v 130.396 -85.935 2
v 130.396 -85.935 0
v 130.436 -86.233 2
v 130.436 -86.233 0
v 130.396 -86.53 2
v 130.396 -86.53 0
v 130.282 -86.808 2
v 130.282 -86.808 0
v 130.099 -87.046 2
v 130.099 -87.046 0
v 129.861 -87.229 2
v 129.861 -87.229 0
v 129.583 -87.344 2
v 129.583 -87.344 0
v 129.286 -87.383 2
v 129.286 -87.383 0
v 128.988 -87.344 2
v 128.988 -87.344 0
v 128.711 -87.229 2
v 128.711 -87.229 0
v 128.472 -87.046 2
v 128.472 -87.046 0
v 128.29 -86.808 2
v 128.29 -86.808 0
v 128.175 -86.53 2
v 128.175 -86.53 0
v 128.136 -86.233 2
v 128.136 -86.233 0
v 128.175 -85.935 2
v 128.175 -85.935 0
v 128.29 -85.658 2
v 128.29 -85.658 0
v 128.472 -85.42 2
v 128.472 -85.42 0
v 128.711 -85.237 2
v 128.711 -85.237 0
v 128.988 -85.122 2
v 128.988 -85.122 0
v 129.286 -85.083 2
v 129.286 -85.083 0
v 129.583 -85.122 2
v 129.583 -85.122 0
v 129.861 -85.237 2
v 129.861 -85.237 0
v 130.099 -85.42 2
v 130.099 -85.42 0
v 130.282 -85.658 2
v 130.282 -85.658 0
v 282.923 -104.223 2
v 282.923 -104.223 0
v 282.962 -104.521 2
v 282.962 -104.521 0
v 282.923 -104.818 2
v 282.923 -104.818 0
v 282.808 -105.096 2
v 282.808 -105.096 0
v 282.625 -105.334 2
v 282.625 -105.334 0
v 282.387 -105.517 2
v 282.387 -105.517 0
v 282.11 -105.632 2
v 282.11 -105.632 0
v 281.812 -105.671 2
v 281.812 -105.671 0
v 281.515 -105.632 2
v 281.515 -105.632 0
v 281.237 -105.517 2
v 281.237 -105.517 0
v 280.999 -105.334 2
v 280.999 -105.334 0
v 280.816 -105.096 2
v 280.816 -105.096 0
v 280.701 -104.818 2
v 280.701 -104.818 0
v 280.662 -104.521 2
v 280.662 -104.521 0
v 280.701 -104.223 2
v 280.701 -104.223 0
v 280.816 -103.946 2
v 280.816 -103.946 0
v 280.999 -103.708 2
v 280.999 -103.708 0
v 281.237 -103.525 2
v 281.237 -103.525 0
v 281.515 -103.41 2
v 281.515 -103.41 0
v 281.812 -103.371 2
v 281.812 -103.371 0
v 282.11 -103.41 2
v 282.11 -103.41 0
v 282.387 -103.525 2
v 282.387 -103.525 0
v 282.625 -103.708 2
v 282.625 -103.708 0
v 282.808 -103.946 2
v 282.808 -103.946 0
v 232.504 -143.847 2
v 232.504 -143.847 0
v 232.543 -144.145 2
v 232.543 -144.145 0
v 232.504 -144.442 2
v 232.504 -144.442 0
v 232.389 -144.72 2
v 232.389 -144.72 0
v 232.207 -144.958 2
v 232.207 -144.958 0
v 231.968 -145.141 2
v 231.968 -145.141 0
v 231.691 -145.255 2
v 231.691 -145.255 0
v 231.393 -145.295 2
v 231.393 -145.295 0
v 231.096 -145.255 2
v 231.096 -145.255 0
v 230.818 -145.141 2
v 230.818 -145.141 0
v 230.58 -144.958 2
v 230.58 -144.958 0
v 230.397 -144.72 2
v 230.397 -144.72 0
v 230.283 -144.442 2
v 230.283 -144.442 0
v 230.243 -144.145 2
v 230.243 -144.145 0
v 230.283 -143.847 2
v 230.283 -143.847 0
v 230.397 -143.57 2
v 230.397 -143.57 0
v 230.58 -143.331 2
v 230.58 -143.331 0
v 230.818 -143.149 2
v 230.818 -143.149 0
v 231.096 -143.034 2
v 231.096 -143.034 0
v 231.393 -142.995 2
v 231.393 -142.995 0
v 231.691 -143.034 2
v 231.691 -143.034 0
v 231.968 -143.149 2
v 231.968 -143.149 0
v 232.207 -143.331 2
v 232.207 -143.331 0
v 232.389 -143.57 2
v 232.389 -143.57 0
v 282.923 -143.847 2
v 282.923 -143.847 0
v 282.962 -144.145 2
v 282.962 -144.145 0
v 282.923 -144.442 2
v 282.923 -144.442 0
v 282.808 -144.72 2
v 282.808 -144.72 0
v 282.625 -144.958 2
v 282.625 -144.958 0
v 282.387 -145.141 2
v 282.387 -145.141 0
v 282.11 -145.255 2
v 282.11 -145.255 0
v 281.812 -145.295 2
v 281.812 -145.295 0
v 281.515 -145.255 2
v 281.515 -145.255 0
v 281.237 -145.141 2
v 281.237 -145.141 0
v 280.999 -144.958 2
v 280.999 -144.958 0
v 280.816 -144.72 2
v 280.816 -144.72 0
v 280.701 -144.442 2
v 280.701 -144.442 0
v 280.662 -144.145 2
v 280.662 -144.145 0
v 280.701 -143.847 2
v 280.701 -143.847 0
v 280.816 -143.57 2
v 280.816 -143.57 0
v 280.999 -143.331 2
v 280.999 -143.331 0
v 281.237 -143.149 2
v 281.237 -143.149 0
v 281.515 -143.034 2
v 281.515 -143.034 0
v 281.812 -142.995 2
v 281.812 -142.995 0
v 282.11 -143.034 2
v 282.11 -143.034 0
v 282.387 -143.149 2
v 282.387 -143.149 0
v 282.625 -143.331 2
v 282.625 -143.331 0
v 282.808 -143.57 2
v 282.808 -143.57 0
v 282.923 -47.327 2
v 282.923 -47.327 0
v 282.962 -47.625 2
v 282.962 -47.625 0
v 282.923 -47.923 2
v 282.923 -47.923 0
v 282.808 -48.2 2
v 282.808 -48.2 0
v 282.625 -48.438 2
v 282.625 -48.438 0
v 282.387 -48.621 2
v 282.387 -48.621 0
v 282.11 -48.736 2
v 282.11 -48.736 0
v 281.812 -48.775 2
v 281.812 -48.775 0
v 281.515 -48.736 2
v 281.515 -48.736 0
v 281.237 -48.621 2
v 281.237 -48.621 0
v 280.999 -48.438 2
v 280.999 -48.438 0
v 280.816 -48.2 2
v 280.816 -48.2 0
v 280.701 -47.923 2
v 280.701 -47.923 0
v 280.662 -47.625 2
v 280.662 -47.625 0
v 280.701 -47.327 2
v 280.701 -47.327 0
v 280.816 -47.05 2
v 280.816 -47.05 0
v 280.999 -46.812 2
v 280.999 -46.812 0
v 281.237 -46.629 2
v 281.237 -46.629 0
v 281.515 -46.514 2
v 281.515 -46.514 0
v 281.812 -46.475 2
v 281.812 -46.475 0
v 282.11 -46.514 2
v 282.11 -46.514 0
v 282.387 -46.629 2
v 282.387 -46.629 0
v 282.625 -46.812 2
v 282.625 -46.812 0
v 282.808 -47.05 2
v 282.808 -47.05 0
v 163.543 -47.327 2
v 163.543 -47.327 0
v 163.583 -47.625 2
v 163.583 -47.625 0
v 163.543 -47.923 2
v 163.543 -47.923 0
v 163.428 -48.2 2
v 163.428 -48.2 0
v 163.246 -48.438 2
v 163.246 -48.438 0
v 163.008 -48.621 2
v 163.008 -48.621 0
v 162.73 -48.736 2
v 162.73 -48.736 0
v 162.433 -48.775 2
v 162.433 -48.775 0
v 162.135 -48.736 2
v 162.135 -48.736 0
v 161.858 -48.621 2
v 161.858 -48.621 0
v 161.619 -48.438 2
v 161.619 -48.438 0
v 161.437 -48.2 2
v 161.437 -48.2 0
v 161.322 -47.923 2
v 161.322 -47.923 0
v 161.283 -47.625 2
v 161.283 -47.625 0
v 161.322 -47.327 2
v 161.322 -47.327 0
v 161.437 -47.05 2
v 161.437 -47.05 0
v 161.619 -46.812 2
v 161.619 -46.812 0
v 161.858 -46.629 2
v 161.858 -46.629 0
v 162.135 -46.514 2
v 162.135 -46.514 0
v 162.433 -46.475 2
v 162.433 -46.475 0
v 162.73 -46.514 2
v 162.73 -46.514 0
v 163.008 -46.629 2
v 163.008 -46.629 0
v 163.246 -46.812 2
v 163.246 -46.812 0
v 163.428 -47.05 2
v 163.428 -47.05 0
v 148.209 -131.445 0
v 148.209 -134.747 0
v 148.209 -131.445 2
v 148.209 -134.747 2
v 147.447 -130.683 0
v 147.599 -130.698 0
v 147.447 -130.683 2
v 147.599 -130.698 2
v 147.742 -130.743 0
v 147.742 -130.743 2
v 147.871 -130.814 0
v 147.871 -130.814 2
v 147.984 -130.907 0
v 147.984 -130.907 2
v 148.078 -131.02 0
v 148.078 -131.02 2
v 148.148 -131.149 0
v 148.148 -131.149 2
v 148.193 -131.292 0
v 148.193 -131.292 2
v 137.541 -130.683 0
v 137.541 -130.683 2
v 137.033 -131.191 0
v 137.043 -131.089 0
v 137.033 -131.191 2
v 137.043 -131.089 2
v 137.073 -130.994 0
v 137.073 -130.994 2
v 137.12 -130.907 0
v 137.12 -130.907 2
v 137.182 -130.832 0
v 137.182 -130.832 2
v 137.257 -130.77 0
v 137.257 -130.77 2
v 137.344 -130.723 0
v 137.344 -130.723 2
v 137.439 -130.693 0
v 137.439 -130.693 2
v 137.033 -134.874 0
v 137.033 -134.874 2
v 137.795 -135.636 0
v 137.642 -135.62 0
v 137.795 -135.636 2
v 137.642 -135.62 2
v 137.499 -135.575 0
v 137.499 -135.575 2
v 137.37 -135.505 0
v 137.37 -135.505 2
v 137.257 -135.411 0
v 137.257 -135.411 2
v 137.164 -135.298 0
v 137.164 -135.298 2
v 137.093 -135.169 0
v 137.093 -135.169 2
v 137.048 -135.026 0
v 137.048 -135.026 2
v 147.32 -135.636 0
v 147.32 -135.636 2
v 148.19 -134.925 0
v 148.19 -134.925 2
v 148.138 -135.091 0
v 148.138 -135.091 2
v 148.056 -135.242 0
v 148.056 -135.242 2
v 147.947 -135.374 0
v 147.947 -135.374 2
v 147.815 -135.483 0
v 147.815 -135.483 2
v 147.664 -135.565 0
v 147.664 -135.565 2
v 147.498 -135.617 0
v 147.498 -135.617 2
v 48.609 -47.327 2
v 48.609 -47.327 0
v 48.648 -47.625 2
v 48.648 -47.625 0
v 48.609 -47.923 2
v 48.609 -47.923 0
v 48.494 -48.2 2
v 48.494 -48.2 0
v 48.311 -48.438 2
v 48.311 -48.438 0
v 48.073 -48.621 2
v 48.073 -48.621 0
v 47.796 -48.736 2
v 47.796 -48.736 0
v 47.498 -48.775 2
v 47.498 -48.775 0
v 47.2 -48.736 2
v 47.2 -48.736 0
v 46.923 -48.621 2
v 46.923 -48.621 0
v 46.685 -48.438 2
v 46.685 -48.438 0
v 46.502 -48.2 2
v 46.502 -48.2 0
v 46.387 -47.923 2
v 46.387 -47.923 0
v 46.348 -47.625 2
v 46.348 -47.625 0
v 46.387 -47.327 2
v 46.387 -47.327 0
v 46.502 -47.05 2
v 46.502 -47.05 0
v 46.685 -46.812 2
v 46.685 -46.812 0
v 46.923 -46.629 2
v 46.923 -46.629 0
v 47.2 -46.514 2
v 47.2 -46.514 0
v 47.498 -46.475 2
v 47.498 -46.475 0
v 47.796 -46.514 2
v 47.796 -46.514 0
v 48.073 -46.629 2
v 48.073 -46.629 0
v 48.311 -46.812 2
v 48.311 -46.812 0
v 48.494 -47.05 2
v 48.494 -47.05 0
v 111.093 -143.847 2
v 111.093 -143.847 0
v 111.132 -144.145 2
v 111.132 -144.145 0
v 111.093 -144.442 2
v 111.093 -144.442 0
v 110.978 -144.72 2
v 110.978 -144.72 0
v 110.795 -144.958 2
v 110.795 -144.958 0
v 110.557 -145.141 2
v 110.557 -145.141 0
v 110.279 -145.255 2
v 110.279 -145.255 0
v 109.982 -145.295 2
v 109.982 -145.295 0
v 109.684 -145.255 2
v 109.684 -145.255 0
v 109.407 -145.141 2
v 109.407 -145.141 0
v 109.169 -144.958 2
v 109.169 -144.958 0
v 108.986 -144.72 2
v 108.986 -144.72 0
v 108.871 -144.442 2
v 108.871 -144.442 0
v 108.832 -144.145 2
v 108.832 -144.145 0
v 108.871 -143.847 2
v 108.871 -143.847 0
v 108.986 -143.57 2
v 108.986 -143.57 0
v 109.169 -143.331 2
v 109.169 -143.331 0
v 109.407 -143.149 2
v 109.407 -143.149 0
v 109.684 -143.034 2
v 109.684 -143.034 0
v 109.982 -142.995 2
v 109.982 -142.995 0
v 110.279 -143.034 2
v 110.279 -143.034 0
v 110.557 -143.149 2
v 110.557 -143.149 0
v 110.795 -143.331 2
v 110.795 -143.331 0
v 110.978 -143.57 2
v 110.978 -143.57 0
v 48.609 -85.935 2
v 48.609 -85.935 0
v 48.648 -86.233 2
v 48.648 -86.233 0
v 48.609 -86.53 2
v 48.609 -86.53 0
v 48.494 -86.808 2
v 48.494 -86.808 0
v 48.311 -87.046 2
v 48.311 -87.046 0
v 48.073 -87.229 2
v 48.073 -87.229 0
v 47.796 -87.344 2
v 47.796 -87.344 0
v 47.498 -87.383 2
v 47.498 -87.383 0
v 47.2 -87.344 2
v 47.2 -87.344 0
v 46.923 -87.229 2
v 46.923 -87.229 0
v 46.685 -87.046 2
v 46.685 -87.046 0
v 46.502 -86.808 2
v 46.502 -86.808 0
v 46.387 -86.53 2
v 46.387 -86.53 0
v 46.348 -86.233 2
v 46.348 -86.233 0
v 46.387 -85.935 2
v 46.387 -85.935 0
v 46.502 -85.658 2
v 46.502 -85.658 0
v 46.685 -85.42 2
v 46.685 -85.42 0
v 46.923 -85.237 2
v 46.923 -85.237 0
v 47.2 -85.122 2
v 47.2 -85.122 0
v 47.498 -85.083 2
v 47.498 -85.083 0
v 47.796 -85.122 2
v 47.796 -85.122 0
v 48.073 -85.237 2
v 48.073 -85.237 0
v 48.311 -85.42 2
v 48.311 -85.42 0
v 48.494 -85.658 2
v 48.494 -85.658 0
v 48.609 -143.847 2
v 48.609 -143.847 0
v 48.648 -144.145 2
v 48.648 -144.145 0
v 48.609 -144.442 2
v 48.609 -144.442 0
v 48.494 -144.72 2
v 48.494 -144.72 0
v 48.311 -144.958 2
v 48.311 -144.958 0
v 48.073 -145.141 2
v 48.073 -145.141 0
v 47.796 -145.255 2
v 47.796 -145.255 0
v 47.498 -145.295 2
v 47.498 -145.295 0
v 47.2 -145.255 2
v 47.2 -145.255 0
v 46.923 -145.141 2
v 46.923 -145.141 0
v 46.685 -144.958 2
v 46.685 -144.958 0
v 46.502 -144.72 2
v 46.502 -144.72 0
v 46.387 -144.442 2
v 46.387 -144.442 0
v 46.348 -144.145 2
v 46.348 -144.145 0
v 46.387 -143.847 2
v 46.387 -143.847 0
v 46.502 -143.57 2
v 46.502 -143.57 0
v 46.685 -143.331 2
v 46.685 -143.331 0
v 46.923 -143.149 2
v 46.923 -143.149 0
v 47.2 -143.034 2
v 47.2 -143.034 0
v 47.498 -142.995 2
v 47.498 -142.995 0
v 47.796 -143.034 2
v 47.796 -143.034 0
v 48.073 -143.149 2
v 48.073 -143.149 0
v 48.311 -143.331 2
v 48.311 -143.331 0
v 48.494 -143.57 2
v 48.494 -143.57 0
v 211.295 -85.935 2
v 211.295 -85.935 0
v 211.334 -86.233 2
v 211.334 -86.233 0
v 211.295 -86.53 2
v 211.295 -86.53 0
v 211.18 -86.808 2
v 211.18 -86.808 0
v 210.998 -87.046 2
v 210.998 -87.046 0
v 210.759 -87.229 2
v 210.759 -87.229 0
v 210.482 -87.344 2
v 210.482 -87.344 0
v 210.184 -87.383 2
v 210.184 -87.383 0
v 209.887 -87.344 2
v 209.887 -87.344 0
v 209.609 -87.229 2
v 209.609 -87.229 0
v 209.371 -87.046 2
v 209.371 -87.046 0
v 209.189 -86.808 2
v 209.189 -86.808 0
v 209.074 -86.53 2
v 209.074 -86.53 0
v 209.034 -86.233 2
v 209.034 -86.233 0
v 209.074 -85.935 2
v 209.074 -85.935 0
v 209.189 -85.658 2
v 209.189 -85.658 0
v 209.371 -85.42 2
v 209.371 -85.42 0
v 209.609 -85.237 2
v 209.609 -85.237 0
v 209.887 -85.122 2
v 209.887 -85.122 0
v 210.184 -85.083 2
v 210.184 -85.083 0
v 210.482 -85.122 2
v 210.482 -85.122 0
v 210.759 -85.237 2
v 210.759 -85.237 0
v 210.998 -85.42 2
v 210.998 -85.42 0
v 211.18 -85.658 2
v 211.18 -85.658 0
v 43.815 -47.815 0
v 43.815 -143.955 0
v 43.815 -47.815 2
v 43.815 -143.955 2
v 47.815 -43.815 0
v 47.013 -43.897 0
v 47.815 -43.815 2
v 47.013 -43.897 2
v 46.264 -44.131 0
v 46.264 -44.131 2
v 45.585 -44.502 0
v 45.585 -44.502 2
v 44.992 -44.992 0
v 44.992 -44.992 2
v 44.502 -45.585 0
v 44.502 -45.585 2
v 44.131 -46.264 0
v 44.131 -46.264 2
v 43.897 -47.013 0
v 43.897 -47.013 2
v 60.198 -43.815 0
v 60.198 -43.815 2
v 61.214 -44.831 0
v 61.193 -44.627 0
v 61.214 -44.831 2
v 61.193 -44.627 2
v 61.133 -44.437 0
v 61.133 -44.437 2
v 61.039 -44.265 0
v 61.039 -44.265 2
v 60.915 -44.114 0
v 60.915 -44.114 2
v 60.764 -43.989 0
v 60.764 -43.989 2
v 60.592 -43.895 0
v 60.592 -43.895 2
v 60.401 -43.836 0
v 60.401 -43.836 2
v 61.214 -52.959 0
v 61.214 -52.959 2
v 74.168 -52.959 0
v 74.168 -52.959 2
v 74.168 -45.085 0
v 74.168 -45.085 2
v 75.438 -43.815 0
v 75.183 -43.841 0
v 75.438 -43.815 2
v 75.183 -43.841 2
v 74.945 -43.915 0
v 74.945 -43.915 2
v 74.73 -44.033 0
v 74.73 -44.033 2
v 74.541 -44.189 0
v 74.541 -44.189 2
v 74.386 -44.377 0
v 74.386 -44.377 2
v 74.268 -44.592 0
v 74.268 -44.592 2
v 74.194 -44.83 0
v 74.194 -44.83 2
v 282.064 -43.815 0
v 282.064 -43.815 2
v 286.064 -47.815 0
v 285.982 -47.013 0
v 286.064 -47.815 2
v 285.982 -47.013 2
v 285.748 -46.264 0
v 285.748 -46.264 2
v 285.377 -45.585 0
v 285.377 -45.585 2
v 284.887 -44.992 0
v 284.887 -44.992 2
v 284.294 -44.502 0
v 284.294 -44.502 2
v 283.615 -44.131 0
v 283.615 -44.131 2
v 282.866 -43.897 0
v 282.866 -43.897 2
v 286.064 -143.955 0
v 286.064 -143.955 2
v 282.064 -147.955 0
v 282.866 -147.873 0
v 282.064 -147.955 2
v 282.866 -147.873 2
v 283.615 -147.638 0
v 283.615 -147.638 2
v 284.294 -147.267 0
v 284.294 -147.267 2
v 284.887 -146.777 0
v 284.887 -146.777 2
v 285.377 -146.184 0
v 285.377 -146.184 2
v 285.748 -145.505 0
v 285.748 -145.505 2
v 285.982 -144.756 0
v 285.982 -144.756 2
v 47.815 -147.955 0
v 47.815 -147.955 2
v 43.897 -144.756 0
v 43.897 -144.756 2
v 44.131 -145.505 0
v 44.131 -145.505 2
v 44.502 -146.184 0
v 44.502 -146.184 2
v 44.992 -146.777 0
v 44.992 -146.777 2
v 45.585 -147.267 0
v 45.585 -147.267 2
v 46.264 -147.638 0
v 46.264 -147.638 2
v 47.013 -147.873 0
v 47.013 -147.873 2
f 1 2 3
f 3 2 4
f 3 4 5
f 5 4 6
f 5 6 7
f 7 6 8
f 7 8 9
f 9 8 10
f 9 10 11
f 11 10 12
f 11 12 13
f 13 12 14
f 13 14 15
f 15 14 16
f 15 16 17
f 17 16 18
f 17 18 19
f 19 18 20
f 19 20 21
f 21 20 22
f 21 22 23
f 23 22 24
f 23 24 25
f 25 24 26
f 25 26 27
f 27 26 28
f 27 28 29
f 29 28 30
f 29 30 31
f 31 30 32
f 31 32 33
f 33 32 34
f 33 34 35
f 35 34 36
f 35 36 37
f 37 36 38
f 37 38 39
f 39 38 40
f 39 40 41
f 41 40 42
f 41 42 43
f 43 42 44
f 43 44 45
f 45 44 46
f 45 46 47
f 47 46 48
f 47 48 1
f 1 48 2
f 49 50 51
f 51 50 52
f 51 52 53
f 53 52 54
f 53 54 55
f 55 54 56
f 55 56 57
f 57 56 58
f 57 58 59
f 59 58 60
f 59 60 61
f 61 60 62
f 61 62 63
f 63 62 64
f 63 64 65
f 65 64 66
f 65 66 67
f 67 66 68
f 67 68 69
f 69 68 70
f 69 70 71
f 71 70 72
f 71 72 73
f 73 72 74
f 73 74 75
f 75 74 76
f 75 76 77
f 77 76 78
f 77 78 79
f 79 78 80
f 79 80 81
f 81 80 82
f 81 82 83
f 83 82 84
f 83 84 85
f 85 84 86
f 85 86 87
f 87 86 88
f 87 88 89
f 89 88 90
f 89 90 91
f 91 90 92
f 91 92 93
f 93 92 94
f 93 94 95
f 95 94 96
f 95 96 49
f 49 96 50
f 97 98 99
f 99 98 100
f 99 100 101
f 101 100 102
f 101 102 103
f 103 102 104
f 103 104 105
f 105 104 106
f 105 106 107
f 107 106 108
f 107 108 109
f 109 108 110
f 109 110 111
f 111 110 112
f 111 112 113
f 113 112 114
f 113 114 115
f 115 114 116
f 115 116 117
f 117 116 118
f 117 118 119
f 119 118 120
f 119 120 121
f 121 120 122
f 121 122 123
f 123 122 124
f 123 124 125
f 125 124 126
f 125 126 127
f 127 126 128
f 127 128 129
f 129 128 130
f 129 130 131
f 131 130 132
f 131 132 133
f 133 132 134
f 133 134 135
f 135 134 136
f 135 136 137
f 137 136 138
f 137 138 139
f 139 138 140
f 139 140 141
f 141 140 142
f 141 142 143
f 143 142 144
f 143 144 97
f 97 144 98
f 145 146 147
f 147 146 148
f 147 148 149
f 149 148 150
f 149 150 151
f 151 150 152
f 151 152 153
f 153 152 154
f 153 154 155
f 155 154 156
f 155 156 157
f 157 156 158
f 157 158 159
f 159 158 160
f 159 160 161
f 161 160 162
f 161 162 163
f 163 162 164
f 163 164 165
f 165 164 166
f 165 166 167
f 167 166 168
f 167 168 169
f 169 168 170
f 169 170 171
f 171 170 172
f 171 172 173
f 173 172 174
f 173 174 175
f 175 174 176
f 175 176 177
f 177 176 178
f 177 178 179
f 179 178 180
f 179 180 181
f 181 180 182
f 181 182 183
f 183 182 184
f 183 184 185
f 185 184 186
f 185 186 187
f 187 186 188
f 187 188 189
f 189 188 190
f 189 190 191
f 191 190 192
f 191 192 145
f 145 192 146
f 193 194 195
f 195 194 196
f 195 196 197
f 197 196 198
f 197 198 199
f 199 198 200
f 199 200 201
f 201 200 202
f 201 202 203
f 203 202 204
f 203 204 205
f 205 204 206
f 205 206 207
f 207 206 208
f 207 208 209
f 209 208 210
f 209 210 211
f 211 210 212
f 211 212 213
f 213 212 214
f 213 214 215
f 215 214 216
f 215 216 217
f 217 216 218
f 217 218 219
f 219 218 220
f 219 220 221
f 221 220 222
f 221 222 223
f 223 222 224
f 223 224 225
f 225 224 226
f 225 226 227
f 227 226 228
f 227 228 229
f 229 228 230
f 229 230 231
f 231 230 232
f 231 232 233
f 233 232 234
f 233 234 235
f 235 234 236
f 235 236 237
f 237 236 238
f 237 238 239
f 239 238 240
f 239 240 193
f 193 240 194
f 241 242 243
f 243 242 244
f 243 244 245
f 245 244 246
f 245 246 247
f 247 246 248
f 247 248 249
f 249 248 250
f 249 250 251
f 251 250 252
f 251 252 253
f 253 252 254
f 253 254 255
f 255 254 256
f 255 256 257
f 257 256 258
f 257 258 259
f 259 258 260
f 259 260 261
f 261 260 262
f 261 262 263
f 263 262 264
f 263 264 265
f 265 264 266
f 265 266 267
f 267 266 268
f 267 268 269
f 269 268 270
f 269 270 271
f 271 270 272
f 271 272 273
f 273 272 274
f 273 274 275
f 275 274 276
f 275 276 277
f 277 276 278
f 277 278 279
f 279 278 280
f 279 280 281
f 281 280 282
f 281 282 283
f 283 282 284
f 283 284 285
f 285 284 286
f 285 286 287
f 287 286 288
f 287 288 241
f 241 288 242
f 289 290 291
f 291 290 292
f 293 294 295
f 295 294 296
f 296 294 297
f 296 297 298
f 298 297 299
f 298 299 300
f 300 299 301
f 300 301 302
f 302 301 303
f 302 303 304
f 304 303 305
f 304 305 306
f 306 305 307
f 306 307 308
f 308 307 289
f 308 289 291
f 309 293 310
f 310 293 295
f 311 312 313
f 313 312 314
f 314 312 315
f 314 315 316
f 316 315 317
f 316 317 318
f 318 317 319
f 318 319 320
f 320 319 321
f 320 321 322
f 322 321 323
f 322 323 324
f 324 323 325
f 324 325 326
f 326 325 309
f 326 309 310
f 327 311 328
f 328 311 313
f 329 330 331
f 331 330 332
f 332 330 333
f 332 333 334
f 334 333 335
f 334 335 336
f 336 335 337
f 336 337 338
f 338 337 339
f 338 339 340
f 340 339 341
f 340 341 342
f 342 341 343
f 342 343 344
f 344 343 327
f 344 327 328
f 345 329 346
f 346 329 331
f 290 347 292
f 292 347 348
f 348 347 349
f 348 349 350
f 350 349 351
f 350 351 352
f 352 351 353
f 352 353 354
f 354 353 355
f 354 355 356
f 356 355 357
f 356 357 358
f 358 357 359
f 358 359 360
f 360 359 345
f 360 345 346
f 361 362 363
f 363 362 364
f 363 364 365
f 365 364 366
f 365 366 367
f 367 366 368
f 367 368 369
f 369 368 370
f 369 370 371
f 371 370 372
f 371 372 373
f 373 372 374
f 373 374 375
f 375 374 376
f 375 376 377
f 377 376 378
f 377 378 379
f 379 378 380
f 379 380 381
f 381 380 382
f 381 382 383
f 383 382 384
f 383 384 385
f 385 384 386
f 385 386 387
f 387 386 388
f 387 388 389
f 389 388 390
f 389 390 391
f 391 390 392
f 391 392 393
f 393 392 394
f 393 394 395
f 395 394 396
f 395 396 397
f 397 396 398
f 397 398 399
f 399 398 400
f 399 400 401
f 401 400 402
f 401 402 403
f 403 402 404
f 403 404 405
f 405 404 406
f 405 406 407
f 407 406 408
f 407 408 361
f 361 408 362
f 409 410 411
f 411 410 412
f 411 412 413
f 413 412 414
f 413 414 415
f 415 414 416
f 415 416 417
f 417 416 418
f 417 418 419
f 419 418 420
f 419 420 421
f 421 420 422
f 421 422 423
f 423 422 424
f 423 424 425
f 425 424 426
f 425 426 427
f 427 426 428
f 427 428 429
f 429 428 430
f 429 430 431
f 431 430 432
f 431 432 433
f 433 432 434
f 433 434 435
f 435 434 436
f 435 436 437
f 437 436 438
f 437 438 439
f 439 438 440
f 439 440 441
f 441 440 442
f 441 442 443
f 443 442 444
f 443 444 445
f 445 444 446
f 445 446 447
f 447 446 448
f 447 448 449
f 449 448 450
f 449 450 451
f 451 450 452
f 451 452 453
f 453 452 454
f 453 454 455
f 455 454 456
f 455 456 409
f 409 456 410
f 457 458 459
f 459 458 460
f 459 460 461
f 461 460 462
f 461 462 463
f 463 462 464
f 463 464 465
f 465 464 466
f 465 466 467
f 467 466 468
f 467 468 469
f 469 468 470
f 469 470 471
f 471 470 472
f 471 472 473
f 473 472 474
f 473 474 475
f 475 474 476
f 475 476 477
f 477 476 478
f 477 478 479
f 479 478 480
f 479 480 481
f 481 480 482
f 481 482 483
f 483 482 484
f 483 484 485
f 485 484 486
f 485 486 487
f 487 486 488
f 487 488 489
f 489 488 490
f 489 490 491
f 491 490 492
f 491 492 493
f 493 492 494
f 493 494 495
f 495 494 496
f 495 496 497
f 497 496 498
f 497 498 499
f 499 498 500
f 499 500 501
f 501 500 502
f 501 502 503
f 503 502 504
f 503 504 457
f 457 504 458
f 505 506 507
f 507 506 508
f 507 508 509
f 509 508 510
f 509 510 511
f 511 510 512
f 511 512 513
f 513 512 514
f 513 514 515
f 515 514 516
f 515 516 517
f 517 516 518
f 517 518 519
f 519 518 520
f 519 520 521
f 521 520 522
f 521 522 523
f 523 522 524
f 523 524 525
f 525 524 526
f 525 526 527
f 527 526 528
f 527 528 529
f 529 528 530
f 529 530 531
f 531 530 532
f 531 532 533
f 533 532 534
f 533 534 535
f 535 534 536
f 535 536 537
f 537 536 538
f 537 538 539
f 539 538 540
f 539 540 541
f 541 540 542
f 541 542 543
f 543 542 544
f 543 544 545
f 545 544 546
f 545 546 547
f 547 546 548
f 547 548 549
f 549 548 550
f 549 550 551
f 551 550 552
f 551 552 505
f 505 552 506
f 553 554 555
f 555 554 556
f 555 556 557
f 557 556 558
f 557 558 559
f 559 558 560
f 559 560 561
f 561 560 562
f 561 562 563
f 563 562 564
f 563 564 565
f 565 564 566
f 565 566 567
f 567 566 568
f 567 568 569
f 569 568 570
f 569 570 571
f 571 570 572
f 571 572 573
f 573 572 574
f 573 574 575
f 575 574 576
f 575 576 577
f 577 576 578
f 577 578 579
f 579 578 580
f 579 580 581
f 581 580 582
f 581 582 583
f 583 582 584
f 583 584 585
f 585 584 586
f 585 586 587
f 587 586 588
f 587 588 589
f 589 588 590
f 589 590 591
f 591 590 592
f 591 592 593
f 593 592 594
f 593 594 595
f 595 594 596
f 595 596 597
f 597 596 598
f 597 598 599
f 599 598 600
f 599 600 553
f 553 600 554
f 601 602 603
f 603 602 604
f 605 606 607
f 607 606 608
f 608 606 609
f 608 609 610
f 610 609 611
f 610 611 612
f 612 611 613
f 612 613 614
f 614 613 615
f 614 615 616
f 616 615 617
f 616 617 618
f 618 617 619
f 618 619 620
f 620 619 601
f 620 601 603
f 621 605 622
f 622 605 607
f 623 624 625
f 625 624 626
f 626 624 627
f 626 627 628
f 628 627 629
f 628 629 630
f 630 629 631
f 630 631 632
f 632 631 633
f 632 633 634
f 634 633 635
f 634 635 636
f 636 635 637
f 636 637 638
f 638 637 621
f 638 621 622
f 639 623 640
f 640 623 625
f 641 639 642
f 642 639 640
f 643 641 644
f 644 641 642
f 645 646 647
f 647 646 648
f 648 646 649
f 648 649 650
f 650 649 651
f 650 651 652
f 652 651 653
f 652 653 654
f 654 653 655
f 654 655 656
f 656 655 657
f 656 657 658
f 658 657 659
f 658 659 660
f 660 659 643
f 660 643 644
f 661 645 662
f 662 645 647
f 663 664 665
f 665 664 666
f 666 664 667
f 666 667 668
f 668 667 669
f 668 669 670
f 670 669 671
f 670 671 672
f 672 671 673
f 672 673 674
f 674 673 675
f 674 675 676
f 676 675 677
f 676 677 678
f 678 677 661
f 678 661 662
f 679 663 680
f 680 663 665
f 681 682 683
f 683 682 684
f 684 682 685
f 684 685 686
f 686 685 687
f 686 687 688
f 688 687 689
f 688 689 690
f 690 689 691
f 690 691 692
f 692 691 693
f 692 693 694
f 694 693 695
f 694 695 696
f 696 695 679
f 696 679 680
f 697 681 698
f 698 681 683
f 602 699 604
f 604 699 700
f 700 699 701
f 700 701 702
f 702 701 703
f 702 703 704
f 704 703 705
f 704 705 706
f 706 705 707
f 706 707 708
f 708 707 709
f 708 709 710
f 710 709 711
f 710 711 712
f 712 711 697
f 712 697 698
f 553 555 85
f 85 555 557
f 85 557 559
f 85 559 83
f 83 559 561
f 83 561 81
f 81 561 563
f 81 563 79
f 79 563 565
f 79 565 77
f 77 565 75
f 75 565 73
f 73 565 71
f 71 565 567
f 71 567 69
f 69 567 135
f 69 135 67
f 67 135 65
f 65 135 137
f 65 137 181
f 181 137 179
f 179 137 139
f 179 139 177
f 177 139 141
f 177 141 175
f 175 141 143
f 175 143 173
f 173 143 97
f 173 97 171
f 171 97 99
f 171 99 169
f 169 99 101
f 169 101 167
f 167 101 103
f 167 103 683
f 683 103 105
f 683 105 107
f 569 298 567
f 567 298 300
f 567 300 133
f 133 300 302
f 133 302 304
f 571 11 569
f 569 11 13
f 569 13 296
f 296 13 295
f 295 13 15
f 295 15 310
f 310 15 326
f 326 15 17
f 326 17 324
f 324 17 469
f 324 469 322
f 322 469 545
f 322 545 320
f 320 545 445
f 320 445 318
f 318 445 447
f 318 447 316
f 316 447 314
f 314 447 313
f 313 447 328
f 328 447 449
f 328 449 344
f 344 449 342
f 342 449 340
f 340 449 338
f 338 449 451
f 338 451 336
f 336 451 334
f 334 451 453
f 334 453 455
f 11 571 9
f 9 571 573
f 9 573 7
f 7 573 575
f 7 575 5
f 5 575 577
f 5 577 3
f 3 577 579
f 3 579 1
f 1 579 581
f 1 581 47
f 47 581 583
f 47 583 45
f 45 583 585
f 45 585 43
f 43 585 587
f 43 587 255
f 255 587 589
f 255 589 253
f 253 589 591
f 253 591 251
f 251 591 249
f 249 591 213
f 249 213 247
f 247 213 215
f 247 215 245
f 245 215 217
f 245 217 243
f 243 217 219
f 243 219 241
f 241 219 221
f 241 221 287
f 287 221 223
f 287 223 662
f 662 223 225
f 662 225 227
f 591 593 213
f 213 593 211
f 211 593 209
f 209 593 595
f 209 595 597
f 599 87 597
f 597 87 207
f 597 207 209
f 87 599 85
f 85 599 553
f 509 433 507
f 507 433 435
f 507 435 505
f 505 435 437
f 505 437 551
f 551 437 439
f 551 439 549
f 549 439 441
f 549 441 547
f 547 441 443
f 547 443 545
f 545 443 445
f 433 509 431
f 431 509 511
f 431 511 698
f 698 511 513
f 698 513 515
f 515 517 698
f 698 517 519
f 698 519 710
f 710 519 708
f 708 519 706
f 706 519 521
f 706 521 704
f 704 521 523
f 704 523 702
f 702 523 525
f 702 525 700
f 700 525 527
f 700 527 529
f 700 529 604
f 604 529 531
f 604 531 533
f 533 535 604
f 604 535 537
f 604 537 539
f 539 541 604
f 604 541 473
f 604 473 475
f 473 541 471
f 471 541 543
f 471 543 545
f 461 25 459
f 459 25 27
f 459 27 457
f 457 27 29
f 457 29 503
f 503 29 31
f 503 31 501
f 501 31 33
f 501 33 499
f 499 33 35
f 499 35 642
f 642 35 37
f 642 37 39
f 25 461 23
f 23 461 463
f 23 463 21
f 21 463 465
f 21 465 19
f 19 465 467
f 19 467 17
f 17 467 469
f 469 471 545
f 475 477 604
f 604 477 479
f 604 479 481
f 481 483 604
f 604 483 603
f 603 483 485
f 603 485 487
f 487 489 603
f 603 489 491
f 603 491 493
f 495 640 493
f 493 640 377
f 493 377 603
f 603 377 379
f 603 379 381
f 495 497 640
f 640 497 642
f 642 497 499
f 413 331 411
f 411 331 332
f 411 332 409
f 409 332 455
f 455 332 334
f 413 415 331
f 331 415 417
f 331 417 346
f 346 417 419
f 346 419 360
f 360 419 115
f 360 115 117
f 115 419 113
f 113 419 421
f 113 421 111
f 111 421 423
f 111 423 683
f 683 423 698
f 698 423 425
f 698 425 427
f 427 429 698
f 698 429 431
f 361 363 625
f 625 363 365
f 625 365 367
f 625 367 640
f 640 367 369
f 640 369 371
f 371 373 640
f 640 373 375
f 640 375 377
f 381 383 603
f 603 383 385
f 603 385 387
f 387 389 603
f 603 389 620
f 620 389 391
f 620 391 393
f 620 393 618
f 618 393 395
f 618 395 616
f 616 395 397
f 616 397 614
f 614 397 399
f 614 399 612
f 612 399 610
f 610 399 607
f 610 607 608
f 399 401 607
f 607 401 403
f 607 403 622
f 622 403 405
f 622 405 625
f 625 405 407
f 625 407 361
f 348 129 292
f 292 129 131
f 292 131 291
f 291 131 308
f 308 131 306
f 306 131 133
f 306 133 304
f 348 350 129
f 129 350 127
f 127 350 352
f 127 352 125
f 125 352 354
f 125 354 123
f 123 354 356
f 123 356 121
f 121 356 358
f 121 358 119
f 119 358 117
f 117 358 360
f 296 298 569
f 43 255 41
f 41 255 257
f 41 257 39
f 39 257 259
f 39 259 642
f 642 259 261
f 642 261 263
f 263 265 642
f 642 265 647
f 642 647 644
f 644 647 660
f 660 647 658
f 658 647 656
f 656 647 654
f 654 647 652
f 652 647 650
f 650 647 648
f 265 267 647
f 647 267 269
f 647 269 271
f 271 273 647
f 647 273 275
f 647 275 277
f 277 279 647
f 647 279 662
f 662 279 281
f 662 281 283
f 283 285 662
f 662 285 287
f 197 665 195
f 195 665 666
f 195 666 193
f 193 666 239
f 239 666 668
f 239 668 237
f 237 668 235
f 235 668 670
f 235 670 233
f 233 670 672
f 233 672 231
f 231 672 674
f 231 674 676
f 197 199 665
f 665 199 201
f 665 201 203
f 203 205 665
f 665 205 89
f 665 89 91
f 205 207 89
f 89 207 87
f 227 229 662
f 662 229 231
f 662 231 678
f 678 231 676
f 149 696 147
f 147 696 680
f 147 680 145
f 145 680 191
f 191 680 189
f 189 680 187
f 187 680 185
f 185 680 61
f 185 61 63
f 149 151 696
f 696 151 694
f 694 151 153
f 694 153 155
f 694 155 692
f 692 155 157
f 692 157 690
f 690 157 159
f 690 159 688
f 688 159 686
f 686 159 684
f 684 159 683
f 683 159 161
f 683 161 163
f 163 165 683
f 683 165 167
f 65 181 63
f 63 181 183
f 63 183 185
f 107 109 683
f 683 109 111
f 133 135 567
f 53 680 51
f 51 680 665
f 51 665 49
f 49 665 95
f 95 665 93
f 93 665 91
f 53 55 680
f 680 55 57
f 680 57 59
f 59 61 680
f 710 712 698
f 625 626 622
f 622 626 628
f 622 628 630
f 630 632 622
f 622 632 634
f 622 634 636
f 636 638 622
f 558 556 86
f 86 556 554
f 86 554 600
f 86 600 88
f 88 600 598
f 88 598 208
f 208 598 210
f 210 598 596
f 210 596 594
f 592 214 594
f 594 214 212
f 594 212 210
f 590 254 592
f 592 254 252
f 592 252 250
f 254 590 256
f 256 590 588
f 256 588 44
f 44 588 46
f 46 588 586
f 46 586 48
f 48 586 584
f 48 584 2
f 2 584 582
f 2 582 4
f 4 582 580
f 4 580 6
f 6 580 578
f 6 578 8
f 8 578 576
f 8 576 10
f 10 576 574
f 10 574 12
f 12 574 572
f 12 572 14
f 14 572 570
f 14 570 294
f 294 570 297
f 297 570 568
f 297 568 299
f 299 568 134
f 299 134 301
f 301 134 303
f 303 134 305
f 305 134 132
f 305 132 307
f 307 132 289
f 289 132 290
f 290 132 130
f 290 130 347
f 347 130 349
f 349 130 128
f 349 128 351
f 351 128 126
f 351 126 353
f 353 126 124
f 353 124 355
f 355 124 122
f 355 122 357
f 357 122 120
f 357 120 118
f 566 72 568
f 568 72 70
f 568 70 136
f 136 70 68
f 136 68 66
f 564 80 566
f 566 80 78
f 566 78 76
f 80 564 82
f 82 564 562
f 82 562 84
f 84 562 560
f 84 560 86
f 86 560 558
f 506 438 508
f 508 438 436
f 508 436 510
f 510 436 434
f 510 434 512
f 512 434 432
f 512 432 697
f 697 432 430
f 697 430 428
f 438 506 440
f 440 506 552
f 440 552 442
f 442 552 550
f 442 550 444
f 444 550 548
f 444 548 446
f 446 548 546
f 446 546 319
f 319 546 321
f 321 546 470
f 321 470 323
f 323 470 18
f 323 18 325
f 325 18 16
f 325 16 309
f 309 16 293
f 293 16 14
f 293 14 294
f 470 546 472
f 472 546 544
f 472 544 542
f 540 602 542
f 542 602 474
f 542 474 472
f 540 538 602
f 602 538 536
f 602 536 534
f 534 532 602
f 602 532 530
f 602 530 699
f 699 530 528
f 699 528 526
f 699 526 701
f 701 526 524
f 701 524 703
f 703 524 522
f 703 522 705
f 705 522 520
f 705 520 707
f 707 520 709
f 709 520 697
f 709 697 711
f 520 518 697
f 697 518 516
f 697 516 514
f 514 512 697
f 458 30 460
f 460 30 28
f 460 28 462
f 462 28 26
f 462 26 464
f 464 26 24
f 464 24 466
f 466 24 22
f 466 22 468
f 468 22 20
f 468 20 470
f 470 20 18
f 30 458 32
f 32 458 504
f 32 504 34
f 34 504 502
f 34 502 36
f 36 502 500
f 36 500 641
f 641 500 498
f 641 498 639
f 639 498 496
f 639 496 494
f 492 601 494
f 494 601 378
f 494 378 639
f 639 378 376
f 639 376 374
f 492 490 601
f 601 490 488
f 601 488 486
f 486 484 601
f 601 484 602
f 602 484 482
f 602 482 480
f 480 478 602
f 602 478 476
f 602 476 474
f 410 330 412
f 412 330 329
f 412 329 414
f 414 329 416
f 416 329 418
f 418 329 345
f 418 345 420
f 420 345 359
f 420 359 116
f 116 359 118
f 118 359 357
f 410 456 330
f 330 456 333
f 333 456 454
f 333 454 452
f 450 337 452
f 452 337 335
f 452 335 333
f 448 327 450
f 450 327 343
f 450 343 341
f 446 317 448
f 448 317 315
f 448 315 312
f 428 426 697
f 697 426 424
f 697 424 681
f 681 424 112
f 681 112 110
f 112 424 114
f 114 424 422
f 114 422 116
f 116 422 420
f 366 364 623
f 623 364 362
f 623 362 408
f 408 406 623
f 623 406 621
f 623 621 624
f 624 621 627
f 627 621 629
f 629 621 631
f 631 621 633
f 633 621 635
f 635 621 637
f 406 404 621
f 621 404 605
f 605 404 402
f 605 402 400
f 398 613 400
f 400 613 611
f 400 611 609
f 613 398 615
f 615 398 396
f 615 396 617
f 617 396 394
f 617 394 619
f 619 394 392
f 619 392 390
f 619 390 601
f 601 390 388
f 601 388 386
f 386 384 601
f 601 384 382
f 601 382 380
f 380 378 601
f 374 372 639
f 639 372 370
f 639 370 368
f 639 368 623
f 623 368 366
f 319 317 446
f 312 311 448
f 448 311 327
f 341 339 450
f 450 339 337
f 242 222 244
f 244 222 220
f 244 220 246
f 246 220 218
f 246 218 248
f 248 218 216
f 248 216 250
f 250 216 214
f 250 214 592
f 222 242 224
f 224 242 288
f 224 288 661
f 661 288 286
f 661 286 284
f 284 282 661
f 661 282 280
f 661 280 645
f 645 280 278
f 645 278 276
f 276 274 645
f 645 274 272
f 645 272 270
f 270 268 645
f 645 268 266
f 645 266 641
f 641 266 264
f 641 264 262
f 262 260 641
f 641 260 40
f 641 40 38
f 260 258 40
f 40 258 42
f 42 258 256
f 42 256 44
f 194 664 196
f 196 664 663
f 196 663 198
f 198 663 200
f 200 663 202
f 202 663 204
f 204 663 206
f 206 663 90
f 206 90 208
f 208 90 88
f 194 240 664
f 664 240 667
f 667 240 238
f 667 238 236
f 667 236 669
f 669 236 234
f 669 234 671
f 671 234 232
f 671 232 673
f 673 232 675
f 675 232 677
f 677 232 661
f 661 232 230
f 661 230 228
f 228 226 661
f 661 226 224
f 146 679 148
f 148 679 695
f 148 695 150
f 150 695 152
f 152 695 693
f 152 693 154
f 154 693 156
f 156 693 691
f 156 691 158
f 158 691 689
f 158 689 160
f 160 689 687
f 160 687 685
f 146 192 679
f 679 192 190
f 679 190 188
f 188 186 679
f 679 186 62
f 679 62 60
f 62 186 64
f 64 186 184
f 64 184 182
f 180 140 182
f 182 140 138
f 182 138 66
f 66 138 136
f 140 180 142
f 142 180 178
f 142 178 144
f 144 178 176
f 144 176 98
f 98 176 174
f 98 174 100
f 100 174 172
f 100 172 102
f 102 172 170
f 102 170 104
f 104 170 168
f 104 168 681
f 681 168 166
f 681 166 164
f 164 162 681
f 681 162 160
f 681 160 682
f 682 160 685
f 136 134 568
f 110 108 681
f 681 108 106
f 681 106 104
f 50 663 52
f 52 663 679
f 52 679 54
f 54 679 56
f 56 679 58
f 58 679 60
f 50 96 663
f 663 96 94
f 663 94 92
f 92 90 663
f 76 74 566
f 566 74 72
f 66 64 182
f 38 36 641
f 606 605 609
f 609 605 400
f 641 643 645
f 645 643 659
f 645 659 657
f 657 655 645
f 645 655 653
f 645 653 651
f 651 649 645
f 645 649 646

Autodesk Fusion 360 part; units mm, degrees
sketch "スケッチ1" plane through (0, 0, 0) normal (0, 0, 1) x (1, 0, 0)
  spline S0 degree 3 poles (61.2138, -44.8309) (61.2138, -44.2739) (60.7548, -43.8149) (60.1978, -43.8149) knots 0 0 0 0 1 1 1 1
  line L0 (147.3196, -135.6356) -> (137.7946, -135.6356)
  spline S1 degree 3 poles (137.0326, -134.8736) (137.0326, -135.2916) (137.3766, -135.6356) (137.7946, -135.6356) knots 0 0 0 0 1 1 1 1
  line L1 (47.8149, -147.9546) -> (282.0642, -147.9546)
  line L2 (61.2138, -52.9589) -> (74.1678, -52.9589)
  spline S2 degree 3 poles (75.4378, -43.8149) (74.7408, -43.8149) (74.1678, -44.3879) (74.1678, -45.0849) knots 0 0 0 0 1 1 1 1
  spline S3 degree 3 poles (148.2086, -131.4446) (148.2086, -131.0266) (147.8646, -130.6826) (147.4466, -130.6826) knots 0 0 0 0 1 1 1 1
  spline S4 degree 3 poles (47.8149, -43.8149) (45.6209, -43.8149) (43.8149, -45.6209) (43.8149, -47.8149) knots 0 0 0 0 1 1 1 1
  spline S5 degree 3 poles (137.5406, -130.6826) (137.2616, -130.6826) (137.0326, -130.9116) (137.0326, -131.1906) knots 0 0 0 0 1 1 1 1
  line L3 (148.2086, -131.4446) -> (148.2086, -134.7466)
  spline S6 degree 3 poles (286.0642, -47.8149) (286.0642, -45.6209) (284.2582, -43.8149) (282.0642, -43.8149) knots 0 0 0 0 1 1 1 1
  line L4 (74.1678, -52.9589) -> (74.1678, -45.0849)
  line L5 (43.8149, -143.9546) -> (43.8149, -47.8149)
  spline S7 degree 3 poles (147.3196, -135.6356) (147.8076, -135.6356) (148.2086, -135.2346) (148.2086, -134.7466) knots 0 0 0 0 1 1 1 1
  spline S8 degree 3 poles (43.8149, -143.9546) (43.8149, -146.1486) (45.6209, -147.9546) (47.8149, -147.9546) knots 0 0 0 0 1 1 1 1
  line L6 (61.2138, -44.8309) -> (61.2138, -52.9589)
  line L7 (137.5406, -130.6826) -> (147.4466, -130.6826)
  line L8 (286.0642, -143.9546) -> (286.0642, -47.8149)
  line L9 (47.8149, -43.8149) -> (60.1978, -43.8149)
  spline S9 degree 3 poles (282.0642, -147.9546) (284.2582, -147.9546) (286.0642, -146.1486) (286.0642, -143.9546) knots 0 0 0 0 1 1 1 1
  line L10 (137.0326, -134.8736) -> (137.0326, -131.1906)
  line L11 (282.0642, -43.8149) -> (75.4378, -43.8149)
  circle A0 centre (47.4979, -47.6249) radius 1.15
  circle A1 centre (231.3934, -144.1446) radius 1.15
  circle A2 centre (281.8122, -47.6249) radius 1.15
  circle A3 centre (109.9817, -144.1446) radius 1.15
  circle A4 centre (47.4979, -86.2328) radius 1.15
  circle A5 centre (129.2856, -86.2328) radius 1.15
  circle A6 centre (210.1844, -86.2328) radius 1.15
  circle A7 centre (47.4979, -144.1446) radius 1.15
  circle A8 centre (281.8122, -104.5207) radius 1.15
  circle A9 centre (281.8122, -144.1446) radius 1.15
  circle A10 centre (162.4326, -47.6249) radius 1.15
  point P0 (48.6479, -47.6249)
  point P1 (232.5434, -144.1446)
  point P2 (282.9622, -47.6249)
  point P3 (111.1317, -144.1446)
  point P4 (48.6479, -86.2328)
  point P5 (130.4356, -86.2328)
  point P6 (211.3344, -86.2328)
  point P7 (48.6479, -144.1446)
  point P8 (282.9622, -104.5207)
  point P9 (282.9622, -144.1446)
  point P10 (163.5826, -47.6249)
extrude "押し出し1" add sketch "スケッチ1" along normal blind 2
